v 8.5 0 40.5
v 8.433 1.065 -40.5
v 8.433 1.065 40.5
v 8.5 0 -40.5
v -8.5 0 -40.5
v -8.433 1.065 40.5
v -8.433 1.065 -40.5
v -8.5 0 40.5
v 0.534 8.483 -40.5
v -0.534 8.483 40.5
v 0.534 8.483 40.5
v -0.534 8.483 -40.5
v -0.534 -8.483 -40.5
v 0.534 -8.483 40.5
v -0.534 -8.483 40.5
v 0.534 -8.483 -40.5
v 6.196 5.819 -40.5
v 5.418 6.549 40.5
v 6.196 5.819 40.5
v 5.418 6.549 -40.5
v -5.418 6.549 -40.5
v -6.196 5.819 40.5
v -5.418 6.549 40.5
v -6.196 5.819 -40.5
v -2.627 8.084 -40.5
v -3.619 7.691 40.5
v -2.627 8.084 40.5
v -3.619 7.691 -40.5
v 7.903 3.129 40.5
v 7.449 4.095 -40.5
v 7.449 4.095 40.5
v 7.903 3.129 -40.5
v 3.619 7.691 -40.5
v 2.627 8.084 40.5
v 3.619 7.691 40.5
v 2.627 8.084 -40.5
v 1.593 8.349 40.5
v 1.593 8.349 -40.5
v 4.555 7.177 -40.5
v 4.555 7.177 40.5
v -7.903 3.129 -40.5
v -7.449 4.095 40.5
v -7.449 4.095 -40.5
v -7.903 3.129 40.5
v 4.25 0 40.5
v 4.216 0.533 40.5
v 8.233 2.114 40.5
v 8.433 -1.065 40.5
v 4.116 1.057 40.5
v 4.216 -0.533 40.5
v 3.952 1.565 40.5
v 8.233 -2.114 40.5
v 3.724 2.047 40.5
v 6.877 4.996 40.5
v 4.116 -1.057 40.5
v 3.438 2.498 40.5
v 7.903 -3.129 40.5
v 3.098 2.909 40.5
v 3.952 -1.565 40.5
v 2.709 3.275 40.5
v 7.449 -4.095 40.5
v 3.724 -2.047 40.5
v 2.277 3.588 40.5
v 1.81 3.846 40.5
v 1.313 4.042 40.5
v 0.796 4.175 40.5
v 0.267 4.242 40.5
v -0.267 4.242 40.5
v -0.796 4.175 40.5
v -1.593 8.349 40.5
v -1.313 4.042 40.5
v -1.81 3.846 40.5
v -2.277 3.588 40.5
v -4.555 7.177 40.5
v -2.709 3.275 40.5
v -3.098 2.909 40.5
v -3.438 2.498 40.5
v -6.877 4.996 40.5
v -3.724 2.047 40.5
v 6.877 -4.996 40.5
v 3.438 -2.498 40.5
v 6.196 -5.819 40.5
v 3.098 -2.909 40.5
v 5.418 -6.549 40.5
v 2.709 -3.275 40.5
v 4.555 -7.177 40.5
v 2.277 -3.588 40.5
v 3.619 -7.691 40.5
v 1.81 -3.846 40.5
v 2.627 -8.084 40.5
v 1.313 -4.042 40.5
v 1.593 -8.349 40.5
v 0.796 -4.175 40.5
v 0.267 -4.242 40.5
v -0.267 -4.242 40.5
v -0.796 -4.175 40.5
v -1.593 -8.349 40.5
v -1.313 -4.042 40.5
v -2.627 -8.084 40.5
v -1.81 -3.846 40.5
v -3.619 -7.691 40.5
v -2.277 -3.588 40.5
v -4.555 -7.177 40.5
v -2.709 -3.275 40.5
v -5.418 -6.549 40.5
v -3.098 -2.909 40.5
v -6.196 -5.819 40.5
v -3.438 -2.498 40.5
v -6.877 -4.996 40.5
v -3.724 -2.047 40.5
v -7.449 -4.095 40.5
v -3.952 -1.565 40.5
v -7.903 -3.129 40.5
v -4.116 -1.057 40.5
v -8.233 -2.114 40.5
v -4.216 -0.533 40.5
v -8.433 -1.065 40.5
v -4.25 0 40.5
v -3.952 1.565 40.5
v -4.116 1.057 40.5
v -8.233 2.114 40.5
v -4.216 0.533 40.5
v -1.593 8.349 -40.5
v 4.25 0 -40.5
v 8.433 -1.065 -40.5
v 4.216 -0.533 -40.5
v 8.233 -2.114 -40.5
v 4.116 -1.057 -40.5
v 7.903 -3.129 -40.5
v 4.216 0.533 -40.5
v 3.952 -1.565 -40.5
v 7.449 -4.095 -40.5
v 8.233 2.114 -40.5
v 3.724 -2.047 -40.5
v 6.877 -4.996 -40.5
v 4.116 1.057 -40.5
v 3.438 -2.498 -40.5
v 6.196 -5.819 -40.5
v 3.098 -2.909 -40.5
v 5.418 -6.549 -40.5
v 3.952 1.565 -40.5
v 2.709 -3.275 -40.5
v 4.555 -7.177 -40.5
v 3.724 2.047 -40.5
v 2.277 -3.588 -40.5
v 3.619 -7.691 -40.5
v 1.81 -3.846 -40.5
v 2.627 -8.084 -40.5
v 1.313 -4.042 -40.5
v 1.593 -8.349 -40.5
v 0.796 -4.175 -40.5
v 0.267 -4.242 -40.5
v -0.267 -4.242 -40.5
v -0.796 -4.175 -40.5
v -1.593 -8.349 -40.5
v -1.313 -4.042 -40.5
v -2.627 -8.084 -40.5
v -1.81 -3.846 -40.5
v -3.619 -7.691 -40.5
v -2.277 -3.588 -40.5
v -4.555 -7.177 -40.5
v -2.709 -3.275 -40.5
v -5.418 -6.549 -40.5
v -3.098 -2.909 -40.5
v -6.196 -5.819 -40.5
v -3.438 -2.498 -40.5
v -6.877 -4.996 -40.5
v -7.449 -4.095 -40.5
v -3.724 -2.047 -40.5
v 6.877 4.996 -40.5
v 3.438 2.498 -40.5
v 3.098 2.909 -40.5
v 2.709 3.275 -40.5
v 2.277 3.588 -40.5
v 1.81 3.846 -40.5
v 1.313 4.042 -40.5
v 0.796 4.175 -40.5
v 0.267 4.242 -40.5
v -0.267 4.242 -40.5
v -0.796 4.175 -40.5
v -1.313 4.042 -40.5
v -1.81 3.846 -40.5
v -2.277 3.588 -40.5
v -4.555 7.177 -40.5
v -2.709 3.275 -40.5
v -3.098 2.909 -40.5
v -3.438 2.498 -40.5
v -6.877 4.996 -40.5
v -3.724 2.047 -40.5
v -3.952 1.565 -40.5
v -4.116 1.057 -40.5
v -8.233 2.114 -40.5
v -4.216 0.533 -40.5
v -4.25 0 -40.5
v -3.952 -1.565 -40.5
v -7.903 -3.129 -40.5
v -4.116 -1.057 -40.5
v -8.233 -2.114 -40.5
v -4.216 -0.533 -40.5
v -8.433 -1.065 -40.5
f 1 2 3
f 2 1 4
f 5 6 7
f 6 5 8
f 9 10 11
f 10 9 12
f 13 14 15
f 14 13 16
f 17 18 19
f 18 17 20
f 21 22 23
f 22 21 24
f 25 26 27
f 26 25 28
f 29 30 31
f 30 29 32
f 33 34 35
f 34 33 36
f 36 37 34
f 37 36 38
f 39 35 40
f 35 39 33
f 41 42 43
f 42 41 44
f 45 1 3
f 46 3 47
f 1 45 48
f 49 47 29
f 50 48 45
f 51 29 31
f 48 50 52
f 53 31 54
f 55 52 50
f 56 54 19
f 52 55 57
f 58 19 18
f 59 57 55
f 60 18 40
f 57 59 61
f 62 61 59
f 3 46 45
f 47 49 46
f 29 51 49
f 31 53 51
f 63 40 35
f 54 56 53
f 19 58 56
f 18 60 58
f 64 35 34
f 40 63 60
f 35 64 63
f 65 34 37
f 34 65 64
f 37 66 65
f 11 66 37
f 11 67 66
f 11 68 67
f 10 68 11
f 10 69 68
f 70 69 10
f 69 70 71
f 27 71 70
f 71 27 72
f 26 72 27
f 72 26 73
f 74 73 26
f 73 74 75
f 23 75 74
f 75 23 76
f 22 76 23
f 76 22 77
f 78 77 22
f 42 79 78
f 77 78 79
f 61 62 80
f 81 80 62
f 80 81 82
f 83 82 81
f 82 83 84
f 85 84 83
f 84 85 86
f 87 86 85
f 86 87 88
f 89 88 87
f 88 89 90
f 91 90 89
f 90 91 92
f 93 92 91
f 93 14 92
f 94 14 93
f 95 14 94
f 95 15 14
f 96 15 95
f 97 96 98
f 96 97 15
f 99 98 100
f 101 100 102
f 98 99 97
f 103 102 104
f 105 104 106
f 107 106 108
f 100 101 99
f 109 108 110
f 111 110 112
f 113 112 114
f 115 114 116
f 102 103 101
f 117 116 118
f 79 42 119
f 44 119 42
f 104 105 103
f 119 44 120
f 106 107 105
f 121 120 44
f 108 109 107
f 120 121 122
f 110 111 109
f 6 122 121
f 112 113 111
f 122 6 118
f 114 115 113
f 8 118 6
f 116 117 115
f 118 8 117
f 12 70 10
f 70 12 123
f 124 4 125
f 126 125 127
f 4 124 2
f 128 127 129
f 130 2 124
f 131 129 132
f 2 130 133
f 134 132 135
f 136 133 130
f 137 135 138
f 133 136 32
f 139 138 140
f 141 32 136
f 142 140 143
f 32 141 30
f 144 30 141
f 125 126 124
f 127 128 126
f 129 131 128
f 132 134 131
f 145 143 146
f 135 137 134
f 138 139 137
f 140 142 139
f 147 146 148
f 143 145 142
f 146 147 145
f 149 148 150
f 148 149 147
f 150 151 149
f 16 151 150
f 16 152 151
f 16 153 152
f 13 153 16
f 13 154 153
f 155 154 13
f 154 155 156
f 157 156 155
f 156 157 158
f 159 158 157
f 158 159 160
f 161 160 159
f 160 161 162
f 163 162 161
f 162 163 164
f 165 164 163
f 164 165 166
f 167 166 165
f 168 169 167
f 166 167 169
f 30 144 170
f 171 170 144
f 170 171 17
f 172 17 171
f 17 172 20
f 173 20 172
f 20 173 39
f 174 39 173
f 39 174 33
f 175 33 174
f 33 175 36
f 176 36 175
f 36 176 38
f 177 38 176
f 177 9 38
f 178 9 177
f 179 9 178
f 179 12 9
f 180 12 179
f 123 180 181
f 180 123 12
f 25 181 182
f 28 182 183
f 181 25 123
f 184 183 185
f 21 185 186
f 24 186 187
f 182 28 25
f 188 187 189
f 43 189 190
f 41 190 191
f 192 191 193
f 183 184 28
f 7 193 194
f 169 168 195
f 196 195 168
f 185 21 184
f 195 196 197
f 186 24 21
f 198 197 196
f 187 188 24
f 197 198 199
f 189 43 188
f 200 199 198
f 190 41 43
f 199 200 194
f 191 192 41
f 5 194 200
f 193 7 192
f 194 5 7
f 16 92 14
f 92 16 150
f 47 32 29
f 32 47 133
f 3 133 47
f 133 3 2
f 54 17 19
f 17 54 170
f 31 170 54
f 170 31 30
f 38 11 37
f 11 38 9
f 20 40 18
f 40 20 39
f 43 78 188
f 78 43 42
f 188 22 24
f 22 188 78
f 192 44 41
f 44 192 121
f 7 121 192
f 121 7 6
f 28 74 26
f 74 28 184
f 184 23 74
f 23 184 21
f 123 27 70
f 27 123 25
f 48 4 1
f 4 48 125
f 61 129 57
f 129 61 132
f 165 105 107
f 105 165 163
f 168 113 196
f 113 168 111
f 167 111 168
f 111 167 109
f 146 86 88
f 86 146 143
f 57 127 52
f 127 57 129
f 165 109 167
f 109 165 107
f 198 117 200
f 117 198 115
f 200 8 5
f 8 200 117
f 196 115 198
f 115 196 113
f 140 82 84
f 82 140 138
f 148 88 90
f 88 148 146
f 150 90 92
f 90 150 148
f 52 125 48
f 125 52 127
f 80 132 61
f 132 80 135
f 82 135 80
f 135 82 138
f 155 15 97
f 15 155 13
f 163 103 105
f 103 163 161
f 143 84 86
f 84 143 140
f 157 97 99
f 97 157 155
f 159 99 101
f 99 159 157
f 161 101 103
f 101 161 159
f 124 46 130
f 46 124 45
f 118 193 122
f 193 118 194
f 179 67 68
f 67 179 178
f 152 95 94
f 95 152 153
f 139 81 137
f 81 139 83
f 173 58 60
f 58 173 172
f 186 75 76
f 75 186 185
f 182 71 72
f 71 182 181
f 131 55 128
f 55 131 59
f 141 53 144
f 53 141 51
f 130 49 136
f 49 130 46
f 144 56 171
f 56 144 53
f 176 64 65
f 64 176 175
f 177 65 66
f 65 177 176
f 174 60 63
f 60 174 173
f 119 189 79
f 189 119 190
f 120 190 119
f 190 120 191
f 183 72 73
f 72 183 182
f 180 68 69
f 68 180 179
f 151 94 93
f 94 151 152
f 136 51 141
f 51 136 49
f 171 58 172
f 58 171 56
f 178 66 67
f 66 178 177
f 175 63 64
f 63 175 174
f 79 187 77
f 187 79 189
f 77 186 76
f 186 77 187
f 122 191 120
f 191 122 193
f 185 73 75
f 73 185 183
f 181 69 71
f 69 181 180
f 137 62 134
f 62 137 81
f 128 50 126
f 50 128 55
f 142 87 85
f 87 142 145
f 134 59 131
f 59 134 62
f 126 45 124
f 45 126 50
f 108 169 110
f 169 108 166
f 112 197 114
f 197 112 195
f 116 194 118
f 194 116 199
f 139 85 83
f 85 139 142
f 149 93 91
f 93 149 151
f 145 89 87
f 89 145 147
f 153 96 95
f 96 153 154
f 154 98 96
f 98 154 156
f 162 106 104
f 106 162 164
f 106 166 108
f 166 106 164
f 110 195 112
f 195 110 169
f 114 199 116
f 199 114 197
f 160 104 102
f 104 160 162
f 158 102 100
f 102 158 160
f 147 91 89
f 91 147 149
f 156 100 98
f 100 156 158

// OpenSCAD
$fn = 50;


difference() {
	union() {
		translate(v = [0, 0, -40.5000000000]) {
			cylinder(h = 81, r = 8.5000000000);
		}
	}
	union() {
		translate(v = [0, 0, -100.0000000000]) {
			cylinder(h = 200, r = 4.2500000000);
		}
	}
}
